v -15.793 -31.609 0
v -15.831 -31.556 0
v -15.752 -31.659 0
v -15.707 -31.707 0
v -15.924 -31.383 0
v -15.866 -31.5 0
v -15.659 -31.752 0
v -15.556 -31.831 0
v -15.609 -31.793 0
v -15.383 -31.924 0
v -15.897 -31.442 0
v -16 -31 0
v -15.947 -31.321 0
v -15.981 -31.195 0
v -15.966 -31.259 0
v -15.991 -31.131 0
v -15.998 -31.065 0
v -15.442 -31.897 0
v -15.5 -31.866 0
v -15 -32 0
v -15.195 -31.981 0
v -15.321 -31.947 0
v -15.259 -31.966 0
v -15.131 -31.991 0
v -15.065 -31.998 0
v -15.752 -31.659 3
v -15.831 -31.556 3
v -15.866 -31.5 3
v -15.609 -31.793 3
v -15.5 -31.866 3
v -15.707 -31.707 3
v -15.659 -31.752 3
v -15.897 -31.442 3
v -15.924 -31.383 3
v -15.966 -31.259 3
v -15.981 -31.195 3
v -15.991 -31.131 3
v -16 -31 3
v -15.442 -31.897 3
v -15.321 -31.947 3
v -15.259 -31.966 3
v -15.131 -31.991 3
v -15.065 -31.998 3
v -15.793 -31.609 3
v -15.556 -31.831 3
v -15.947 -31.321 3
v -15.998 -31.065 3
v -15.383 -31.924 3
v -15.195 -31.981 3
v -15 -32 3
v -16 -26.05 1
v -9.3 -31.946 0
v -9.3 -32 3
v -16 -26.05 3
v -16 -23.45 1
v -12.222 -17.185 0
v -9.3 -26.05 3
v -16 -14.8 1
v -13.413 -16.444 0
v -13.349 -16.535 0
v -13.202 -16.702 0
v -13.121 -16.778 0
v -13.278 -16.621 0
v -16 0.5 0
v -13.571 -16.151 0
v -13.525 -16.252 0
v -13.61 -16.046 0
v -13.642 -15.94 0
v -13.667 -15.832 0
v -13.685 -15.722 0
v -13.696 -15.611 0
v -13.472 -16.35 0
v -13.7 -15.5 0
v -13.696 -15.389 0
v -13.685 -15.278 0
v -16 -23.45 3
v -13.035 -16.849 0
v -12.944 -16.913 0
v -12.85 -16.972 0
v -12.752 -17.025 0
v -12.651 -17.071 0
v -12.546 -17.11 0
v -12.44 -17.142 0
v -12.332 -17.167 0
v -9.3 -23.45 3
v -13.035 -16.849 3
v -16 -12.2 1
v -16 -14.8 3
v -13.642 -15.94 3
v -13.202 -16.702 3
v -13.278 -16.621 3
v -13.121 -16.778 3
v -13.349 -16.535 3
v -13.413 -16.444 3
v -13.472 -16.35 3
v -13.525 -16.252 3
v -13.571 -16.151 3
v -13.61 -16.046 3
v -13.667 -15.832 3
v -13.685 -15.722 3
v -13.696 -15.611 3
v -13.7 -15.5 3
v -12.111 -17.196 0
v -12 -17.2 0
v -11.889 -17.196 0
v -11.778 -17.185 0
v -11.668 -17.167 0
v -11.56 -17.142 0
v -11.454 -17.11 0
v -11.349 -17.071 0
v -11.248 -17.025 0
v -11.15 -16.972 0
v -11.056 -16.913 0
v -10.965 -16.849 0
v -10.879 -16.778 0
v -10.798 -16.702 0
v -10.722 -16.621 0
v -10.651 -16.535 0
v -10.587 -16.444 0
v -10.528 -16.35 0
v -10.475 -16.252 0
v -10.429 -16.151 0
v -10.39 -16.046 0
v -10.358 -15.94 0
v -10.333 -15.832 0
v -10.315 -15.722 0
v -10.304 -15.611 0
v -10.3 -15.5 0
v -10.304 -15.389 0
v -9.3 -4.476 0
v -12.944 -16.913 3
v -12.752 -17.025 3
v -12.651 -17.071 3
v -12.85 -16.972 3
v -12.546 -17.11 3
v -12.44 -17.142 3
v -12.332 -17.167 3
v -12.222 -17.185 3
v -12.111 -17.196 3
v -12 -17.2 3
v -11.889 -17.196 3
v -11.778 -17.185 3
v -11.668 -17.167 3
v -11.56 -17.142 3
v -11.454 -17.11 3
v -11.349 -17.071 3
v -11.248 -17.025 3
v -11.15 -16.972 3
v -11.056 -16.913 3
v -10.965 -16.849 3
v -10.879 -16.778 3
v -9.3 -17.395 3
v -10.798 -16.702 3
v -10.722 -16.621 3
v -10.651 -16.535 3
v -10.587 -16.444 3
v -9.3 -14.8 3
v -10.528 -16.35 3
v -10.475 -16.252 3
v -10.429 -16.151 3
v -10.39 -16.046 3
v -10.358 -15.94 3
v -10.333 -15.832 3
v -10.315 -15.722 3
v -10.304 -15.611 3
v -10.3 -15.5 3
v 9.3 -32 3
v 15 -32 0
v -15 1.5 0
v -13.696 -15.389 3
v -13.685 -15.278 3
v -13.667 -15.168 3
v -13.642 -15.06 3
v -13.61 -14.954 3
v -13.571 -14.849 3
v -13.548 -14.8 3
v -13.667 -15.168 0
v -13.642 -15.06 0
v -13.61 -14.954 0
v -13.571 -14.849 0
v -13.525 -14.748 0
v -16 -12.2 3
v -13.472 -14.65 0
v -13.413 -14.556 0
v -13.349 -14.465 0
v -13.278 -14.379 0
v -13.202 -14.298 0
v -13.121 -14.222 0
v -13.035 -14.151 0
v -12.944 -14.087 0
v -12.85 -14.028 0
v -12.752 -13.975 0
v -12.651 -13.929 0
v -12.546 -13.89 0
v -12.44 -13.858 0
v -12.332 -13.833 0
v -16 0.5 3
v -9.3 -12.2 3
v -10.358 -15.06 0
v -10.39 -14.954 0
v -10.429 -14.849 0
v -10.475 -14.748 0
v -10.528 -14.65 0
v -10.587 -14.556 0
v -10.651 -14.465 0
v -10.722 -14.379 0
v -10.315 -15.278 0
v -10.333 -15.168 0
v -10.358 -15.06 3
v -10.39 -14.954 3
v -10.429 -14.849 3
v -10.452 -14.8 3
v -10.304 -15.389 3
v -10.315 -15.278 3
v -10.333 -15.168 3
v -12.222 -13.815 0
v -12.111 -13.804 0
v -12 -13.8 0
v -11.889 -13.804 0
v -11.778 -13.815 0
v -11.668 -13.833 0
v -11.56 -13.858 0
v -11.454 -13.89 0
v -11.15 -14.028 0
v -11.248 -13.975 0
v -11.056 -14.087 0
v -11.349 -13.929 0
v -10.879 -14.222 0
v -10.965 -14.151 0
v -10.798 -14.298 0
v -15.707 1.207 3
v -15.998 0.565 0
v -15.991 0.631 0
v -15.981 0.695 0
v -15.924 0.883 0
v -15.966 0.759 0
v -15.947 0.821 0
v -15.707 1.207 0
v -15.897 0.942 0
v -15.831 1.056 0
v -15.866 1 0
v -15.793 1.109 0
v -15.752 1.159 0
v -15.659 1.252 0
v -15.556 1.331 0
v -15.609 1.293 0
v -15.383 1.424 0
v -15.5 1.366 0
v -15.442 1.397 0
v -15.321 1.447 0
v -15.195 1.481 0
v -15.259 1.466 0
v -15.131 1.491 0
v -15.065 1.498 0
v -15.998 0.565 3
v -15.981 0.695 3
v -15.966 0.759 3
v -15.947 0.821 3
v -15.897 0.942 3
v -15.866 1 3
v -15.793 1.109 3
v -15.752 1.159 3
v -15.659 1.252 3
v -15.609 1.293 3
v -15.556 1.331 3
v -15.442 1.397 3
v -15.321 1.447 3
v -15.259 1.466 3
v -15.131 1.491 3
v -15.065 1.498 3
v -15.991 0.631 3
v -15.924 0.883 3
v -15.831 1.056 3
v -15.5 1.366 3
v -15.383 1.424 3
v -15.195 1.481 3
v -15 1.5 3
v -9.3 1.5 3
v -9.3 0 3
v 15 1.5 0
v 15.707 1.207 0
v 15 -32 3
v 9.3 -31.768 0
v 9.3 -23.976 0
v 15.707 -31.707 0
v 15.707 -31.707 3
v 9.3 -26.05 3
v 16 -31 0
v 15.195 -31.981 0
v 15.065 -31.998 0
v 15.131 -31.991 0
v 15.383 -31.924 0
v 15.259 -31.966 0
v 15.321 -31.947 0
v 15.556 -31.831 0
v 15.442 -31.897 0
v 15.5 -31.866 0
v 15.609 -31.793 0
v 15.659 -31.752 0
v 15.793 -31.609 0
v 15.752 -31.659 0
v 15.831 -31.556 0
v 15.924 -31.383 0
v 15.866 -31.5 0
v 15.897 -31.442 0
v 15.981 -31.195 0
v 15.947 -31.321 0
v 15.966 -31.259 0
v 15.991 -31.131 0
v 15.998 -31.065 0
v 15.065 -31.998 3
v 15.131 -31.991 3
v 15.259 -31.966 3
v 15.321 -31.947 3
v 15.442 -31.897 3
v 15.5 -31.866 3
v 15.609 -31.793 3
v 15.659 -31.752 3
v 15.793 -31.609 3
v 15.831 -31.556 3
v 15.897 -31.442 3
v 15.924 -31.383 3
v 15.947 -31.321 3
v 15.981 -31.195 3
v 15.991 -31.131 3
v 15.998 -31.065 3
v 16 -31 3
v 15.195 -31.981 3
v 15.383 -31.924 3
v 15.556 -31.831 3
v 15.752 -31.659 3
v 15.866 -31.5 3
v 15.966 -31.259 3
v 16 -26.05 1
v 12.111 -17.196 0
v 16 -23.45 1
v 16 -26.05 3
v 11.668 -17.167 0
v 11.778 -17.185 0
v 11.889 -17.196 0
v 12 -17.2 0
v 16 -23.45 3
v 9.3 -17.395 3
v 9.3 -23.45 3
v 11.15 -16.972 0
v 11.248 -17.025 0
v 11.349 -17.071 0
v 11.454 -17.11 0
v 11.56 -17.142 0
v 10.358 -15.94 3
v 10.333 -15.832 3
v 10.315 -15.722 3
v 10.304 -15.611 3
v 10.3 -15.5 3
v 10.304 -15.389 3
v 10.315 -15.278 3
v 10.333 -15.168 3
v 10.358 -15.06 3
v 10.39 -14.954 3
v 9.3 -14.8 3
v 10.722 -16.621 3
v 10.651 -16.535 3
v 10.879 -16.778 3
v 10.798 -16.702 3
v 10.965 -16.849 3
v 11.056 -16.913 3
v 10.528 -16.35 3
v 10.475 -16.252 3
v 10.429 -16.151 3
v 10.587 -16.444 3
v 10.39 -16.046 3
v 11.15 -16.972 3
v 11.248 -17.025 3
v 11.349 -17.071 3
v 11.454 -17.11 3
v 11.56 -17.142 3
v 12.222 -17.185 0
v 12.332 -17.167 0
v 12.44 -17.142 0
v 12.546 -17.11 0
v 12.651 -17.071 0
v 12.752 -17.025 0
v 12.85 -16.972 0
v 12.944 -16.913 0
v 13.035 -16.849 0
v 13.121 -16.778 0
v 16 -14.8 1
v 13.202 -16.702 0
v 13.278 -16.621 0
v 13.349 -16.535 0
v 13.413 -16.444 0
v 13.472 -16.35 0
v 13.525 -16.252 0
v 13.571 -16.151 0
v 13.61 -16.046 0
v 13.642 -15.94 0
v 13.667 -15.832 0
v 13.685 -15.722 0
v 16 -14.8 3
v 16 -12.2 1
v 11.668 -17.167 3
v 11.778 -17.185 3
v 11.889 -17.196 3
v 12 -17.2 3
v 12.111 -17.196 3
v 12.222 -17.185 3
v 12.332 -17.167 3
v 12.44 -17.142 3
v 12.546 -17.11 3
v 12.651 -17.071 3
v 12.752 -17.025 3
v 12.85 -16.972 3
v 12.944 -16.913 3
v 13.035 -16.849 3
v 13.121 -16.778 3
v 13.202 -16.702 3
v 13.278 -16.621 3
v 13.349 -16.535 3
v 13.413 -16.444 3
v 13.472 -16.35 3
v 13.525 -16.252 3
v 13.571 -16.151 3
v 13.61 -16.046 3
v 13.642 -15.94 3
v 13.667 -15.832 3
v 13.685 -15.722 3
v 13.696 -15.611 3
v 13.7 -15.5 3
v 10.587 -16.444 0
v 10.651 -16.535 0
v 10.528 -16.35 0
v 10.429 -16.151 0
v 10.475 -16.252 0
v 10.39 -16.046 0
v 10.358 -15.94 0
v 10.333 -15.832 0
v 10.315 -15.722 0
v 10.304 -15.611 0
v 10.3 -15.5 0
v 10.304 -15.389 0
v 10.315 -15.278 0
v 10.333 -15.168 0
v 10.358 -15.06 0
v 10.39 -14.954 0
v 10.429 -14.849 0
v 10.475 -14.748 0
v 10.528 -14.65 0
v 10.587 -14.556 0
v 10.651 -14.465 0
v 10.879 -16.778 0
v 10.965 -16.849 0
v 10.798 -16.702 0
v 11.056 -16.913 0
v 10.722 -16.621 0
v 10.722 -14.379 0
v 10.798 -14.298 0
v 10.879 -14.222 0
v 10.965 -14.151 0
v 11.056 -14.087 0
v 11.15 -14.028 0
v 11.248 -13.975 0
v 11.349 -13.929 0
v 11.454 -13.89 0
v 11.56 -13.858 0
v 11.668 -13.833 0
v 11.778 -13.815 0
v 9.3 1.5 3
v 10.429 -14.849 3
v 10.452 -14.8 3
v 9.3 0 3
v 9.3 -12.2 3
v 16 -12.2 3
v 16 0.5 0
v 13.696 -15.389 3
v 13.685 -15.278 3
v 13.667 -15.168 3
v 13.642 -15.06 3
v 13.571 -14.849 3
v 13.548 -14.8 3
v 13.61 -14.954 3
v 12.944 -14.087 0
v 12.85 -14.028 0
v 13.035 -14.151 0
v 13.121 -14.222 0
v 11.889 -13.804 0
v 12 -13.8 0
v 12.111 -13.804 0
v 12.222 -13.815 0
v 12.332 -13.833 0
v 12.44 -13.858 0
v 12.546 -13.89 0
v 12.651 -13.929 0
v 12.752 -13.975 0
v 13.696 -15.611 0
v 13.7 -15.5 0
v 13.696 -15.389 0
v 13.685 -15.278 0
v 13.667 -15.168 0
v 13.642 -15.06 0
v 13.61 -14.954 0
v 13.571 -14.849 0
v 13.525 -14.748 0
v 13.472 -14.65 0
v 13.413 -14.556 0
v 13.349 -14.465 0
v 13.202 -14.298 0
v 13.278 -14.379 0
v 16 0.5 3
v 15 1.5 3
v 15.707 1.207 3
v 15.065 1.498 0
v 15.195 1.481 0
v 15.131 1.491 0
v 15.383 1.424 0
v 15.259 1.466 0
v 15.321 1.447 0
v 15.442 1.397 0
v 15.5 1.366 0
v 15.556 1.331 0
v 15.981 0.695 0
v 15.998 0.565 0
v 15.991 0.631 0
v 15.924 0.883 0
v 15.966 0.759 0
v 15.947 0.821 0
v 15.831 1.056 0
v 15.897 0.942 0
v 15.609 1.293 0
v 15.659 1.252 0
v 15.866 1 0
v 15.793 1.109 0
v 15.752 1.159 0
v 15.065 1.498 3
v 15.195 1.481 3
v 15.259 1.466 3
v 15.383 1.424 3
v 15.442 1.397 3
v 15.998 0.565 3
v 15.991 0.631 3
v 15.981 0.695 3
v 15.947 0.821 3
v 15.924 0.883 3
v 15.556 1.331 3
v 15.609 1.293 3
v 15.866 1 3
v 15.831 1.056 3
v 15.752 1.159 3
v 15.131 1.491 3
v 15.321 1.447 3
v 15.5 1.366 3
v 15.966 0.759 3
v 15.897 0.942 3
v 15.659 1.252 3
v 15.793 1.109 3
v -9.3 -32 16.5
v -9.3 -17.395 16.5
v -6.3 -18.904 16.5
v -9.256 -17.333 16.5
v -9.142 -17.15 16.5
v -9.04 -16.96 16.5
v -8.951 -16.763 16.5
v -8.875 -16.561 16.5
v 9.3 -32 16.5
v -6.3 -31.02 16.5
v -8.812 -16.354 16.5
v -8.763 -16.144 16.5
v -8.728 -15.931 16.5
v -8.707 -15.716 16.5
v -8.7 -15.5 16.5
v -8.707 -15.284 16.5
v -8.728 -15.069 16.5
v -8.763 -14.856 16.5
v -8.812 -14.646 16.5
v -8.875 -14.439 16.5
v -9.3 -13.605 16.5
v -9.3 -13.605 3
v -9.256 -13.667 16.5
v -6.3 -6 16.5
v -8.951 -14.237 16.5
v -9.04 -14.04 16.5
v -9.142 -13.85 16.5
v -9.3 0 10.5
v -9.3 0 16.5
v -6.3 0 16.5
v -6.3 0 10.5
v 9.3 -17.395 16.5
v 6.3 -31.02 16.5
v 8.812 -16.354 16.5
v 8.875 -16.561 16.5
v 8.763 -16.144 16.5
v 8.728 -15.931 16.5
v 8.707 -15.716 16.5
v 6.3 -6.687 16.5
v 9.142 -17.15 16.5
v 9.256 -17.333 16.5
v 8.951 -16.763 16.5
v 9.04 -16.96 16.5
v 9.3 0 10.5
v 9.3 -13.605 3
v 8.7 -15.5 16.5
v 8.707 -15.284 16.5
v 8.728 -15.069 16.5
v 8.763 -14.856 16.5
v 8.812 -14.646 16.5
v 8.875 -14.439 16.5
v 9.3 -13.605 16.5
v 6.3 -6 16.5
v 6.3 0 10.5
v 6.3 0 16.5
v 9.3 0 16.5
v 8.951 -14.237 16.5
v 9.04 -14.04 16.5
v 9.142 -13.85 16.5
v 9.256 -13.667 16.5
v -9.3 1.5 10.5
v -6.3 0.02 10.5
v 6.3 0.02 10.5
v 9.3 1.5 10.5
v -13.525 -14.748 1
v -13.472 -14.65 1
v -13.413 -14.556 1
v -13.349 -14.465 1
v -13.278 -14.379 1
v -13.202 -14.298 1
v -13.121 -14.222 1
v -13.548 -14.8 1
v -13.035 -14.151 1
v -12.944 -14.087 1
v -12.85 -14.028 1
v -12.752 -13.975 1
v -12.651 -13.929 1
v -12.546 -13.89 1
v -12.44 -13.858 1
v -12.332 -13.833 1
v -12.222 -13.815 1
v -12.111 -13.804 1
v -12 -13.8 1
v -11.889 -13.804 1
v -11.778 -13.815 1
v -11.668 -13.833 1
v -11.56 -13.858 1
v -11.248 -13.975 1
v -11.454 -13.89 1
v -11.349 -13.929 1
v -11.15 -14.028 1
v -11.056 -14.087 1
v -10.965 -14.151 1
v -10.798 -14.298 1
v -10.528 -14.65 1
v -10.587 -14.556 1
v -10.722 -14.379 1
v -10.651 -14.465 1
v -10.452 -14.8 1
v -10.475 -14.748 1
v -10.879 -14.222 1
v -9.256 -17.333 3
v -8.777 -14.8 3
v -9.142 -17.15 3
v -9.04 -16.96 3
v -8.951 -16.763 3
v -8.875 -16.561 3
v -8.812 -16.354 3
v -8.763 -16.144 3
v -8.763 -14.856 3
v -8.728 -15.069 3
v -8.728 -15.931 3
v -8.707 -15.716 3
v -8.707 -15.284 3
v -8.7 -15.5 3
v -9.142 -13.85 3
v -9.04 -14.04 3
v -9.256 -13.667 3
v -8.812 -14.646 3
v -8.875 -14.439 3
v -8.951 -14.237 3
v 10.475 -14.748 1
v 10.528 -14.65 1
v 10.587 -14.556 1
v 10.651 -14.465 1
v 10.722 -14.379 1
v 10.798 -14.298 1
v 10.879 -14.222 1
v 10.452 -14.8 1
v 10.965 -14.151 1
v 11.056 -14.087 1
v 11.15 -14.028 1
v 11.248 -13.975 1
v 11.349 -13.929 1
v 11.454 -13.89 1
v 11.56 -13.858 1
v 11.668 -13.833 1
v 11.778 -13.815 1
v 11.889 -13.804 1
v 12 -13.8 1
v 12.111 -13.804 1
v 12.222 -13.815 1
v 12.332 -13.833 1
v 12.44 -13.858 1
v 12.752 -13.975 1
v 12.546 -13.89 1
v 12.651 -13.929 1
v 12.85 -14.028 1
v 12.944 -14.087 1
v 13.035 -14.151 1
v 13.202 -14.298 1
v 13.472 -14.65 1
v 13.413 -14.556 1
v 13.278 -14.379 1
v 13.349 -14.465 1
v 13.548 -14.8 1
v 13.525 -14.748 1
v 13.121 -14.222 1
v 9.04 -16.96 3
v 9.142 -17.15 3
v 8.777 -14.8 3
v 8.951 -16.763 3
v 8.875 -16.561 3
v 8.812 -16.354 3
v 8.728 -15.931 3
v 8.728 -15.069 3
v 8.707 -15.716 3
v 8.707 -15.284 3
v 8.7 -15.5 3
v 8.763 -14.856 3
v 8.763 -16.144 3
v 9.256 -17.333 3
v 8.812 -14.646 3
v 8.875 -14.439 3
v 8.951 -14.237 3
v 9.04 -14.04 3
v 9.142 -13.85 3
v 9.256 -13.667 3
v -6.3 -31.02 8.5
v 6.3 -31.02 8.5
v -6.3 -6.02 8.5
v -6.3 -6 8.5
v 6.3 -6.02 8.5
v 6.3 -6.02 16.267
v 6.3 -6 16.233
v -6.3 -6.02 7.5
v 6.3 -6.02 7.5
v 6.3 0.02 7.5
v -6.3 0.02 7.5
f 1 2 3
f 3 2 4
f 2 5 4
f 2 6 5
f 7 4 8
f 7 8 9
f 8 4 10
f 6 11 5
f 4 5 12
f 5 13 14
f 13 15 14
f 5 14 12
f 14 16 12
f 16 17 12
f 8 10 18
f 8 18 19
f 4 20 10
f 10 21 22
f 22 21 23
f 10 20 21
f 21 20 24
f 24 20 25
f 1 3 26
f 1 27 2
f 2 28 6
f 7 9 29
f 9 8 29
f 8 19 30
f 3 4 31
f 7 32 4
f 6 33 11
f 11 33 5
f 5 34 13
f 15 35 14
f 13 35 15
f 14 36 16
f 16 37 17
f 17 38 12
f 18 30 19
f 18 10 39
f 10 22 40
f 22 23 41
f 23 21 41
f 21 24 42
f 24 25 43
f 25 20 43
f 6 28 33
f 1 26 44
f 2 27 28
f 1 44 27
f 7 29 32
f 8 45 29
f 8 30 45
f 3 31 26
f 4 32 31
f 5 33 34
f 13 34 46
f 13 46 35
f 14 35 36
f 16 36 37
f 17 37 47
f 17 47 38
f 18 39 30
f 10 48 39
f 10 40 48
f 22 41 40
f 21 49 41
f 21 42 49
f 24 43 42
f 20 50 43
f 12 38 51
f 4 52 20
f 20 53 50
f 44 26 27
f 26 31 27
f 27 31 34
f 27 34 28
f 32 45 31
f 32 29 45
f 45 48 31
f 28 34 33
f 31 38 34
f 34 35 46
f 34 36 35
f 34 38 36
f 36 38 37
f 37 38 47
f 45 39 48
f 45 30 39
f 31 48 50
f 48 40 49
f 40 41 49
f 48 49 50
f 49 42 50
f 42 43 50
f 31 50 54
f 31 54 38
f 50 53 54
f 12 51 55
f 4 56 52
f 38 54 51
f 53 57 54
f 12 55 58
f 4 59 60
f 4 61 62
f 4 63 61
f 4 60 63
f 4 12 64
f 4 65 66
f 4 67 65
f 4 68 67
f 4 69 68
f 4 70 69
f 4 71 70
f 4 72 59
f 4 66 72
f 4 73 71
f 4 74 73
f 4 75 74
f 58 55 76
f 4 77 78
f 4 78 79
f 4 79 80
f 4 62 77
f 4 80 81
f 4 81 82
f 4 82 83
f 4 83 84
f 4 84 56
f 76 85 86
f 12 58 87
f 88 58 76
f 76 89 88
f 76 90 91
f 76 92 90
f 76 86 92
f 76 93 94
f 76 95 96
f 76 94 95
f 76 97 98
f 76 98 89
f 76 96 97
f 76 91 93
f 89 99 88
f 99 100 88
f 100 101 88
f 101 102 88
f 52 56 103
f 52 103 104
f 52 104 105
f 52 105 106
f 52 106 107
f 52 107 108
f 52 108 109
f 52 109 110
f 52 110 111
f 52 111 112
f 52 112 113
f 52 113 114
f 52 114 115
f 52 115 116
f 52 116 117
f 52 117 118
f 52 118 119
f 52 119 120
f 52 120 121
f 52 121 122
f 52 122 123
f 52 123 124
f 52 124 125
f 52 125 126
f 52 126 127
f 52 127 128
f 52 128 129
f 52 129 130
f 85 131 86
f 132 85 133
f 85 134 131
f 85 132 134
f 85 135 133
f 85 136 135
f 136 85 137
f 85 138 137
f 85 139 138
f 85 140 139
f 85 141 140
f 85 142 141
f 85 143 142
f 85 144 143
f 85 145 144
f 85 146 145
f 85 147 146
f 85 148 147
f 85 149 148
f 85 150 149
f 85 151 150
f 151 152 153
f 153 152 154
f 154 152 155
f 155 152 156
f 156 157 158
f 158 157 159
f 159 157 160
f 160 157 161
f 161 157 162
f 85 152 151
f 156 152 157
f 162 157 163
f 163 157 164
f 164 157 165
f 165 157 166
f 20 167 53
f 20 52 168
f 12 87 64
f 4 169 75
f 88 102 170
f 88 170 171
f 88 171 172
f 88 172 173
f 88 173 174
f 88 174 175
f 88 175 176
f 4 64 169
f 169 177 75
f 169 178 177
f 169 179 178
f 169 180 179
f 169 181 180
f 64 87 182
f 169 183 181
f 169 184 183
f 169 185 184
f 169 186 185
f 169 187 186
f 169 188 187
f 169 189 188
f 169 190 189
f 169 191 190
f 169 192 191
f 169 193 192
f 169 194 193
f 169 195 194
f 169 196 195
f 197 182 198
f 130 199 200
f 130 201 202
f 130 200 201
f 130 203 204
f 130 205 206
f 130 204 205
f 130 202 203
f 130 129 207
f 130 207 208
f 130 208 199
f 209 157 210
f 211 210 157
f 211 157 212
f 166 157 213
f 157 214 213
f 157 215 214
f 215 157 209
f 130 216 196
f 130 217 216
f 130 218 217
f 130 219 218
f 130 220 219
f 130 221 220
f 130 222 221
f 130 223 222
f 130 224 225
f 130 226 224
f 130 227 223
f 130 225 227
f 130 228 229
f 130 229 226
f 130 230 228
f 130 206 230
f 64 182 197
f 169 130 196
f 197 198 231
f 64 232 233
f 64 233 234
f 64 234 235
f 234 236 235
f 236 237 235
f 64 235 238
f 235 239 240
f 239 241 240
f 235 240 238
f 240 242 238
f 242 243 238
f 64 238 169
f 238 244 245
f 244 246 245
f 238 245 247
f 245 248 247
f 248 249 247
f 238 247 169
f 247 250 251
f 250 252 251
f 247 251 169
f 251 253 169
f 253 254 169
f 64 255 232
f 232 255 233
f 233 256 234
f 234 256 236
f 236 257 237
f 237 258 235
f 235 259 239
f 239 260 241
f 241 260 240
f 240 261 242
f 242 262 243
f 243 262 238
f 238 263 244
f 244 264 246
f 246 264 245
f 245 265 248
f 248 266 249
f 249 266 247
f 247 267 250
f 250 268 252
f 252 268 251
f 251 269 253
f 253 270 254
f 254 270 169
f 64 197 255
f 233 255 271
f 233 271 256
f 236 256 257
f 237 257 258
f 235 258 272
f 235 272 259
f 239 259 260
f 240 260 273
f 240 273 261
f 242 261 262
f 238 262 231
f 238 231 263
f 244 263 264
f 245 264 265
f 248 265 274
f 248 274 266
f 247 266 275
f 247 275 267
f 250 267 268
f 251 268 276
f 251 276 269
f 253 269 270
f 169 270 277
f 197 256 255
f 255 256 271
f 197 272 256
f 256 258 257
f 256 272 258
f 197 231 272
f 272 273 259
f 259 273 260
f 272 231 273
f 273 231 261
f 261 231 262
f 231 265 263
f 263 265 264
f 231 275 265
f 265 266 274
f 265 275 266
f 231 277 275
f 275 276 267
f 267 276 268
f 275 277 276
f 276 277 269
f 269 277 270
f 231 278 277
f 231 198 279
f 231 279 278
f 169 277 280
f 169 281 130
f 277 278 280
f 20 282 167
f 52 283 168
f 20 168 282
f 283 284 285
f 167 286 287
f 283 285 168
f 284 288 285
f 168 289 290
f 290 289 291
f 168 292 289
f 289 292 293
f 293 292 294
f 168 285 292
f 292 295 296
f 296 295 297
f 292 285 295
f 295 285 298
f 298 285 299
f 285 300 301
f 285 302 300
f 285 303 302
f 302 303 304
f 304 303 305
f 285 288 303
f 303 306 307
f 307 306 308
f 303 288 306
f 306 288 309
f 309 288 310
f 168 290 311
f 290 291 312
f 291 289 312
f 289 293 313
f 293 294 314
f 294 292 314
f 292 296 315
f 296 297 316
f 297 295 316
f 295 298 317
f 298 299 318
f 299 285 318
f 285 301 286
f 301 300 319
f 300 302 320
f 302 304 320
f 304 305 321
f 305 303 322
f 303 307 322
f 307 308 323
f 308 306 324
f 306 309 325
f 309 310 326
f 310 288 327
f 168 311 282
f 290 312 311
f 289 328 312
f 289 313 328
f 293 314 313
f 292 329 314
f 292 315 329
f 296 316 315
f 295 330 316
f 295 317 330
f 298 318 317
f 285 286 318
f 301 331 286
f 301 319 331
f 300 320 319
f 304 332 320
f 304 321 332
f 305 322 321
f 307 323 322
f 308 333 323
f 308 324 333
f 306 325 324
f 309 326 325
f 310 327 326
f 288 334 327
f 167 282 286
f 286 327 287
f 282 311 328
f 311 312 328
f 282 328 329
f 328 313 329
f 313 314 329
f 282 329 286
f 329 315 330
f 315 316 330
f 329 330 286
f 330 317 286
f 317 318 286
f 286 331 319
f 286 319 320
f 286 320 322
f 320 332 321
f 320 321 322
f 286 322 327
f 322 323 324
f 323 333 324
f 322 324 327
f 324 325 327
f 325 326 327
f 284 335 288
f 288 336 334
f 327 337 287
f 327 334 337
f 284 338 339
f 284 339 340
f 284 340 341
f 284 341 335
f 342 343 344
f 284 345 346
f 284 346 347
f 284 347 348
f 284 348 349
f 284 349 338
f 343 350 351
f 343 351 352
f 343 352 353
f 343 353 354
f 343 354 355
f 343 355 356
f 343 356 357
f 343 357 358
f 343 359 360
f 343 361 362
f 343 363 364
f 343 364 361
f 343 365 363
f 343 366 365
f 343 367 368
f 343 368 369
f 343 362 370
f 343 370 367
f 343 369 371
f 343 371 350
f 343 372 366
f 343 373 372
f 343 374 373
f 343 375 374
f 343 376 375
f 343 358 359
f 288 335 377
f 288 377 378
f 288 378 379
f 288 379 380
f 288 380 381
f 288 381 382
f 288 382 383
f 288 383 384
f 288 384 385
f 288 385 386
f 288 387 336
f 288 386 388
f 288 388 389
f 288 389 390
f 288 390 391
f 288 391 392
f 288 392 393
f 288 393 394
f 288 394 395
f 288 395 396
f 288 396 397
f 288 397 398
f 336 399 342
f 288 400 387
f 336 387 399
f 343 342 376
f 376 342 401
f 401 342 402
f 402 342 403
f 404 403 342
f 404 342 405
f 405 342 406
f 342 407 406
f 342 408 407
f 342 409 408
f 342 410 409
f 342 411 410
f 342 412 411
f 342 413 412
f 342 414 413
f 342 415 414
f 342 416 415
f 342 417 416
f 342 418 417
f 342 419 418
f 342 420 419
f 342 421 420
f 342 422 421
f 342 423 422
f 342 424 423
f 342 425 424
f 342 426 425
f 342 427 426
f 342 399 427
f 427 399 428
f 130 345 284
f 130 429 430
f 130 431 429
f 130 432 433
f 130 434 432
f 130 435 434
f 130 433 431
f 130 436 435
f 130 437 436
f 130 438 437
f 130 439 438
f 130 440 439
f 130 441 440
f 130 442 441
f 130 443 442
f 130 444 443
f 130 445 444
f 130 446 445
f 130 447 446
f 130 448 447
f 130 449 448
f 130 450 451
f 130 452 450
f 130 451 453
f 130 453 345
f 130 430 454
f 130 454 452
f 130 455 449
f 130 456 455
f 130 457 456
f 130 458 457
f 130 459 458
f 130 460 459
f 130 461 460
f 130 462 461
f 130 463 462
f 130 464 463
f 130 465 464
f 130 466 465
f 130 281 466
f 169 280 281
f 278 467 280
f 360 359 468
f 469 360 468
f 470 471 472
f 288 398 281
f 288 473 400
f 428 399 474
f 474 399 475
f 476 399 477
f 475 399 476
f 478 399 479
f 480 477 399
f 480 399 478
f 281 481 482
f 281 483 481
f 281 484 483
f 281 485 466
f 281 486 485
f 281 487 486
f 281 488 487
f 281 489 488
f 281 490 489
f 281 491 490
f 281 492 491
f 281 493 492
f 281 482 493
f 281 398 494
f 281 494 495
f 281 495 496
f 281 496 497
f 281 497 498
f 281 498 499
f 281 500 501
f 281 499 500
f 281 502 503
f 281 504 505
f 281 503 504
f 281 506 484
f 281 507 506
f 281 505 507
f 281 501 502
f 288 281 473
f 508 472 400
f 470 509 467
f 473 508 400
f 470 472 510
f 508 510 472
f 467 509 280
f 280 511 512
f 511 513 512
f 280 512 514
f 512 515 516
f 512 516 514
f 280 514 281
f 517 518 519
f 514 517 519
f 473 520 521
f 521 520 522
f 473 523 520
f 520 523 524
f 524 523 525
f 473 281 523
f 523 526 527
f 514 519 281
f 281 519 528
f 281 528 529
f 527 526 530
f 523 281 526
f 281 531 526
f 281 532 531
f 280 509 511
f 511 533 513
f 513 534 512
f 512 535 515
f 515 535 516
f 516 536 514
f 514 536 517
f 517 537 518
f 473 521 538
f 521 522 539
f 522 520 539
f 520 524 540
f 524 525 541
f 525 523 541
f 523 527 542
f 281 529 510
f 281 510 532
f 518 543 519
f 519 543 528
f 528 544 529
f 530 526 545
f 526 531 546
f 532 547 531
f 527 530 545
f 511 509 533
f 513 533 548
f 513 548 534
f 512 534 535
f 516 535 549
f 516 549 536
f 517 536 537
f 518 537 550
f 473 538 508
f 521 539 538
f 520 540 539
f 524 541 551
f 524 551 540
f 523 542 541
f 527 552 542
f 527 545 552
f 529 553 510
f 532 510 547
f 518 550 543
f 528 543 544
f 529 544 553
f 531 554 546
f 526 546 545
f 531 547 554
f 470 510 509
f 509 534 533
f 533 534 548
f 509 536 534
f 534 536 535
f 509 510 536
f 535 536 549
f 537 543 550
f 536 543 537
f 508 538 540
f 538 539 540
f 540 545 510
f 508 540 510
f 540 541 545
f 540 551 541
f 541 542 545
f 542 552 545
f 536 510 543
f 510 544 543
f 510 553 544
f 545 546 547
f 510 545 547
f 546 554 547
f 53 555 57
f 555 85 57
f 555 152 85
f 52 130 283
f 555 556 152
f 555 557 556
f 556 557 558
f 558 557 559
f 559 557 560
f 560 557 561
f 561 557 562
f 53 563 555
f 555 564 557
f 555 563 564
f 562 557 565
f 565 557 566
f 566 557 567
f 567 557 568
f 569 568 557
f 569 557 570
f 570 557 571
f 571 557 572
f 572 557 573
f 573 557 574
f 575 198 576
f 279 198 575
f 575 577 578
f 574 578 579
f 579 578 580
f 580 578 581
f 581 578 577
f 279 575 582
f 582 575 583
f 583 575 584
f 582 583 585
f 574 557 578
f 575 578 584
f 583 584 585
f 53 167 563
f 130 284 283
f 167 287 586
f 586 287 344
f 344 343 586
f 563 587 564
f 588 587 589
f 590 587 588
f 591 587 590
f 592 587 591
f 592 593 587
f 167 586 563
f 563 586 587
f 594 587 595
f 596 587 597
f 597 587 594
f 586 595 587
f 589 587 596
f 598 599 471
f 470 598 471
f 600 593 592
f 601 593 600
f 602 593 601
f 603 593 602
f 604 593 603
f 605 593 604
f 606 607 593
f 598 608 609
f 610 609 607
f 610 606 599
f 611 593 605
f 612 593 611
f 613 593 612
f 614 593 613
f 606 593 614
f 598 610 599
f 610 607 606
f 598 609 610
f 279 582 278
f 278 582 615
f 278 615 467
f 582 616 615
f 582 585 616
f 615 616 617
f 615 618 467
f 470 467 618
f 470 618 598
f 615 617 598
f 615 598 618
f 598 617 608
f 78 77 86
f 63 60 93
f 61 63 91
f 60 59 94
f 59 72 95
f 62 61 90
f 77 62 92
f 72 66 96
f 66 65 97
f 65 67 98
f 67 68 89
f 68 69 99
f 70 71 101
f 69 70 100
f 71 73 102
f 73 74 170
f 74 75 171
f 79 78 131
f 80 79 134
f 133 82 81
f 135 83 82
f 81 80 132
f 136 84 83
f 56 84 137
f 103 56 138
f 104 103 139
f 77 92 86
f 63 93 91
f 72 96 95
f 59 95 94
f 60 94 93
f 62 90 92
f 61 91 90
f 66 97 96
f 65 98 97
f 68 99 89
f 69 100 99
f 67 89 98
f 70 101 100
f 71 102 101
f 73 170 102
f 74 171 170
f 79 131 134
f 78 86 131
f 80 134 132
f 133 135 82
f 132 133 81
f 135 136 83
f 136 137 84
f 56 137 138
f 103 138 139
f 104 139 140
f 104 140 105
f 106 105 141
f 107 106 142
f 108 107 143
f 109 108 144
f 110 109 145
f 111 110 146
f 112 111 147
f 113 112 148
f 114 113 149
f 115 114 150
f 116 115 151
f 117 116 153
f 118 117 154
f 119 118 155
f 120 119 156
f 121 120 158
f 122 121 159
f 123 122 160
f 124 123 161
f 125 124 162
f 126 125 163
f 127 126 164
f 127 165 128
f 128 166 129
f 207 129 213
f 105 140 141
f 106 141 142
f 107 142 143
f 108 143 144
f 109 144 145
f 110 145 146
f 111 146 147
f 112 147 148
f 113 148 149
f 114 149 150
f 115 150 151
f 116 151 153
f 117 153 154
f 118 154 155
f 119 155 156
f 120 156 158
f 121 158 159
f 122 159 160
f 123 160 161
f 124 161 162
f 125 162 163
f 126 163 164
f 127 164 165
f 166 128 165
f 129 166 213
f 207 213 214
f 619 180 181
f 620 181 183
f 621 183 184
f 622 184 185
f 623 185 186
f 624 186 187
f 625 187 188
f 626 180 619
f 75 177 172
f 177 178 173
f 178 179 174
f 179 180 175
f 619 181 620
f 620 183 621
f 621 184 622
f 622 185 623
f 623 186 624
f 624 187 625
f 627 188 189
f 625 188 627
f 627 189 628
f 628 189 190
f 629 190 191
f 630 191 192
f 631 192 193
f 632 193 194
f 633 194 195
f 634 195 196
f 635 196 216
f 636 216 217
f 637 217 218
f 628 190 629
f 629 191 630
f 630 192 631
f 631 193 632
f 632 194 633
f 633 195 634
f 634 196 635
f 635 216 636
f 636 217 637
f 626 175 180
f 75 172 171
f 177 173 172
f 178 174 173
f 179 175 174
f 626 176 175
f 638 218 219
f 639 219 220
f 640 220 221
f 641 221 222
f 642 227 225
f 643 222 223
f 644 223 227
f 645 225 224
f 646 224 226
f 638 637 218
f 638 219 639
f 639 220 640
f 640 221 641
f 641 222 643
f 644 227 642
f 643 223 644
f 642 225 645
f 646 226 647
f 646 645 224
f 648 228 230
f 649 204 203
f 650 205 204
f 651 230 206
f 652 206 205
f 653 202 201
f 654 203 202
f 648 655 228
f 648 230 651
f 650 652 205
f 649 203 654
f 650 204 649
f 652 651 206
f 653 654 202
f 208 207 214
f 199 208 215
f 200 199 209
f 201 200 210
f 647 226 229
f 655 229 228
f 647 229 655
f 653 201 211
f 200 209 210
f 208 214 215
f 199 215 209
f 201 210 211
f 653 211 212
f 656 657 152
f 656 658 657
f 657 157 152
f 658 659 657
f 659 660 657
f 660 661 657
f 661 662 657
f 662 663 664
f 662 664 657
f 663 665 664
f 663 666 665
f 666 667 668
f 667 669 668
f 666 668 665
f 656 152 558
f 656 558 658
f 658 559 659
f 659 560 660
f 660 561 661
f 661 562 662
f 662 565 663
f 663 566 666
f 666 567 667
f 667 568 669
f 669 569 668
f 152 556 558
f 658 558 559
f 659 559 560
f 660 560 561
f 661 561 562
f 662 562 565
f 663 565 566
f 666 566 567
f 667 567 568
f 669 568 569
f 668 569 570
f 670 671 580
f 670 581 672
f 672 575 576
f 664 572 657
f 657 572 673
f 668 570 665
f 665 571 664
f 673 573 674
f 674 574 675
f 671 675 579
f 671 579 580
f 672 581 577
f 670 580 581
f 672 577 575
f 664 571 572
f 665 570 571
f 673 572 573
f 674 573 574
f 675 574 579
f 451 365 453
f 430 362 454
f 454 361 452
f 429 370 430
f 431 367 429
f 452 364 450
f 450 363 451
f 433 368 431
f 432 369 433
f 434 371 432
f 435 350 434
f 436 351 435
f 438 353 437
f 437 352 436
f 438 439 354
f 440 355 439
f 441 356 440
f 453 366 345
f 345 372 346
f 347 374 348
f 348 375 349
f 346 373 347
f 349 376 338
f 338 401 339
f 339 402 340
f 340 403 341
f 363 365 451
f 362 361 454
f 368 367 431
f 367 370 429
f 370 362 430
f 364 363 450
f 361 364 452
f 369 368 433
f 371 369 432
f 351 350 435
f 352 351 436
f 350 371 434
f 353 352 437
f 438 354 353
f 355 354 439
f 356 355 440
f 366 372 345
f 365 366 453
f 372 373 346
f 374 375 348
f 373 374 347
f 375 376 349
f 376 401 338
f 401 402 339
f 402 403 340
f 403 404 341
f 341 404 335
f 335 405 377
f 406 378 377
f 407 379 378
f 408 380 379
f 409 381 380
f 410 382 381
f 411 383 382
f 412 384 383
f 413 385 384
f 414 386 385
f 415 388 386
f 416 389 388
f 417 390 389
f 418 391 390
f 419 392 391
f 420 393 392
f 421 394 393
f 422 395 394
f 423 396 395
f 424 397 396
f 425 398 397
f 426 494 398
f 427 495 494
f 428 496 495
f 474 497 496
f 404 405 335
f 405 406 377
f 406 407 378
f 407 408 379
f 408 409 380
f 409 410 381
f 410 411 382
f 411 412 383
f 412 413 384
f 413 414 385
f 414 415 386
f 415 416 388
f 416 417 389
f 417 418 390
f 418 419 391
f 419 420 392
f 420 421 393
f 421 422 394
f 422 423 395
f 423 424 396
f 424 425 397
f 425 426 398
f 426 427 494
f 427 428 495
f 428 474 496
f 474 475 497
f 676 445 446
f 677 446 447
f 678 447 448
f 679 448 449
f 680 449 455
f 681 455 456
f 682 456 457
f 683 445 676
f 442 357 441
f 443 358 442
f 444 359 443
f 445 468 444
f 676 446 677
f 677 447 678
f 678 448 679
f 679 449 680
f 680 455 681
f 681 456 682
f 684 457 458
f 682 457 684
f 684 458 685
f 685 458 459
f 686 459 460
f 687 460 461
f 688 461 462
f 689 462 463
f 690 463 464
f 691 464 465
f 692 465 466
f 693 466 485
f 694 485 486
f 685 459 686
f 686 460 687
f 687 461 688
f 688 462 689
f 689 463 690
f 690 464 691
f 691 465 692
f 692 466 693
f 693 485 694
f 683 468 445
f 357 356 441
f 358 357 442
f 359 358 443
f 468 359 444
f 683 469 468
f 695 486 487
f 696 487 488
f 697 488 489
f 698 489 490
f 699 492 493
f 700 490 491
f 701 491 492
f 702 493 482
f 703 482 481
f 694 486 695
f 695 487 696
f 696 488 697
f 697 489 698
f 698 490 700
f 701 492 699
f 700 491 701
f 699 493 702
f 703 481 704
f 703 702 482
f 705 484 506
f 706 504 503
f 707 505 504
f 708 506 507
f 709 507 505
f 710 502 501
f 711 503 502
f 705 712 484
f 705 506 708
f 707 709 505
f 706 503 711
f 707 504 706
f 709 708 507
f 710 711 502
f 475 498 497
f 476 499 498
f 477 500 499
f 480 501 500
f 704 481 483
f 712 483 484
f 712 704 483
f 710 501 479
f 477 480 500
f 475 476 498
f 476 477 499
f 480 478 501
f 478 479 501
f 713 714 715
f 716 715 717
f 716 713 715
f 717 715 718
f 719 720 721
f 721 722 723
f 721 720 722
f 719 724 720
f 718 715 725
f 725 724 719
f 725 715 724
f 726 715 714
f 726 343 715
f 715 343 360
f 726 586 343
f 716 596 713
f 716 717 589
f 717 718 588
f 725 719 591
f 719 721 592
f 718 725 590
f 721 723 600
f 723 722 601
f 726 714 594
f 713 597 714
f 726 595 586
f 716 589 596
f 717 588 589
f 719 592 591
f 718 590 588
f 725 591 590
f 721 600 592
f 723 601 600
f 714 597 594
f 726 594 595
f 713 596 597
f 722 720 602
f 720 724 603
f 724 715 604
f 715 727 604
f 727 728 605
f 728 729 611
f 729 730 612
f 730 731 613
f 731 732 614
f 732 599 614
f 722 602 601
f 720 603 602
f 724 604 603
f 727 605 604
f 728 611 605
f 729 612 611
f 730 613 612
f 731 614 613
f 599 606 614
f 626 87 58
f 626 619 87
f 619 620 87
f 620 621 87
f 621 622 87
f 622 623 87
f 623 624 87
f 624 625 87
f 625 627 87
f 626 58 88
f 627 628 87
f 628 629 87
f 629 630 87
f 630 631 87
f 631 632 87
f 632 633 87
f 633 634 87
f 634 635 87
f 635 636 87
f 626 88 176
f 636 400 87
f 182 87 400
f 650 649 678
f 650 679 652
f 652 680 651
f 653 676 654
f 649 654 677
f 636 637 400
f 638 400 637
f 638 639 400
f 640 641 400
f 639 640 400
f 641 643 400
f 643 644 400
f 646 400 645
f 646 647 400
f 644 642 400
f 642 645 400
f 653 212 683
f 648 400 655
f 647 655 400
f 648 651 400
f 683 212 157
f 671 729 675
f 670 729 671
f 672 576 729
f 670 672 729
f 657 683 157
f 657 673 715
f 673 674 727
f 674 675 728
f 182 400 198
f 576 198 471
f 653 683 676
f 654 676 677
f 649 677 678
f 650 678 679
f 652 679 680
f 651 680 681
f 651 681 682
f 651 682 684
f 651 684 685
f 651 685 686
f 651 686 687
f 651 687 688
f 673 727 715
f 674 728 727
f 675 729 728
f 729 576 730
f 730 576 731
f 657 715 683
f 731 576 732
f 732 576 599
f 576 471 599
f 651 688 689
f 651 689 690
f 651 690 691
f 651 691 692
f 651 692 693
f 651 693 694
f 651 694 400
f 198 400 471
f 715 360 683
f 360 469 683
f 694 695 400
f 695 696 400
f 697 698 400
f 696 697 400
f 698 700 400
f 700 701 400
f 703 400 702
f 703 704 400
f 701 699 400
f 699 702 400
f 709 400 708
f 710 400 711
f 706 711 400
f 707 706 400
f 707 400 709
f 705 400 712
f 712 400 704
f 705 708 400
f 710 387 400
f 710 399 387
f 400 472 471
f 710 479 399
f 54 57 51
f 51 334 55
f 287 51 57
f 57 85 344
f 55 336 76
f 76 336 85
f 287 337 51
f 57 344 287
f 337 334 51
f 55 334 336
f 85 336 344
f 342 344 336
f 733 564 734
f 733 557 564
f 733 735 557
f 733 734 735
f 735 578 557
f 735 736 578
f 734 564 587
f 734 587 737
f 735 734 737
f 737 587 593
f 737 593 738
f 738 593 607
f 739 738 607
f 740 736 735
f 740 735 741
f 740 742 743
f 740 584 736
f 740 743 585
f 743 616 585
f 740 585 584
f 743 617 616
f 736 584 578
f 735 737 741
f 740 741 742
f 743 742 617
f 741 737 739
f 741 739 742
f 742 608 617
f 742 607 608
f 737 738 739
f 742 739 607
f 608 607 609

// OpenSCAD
// Units: mm. Generic prototype; read ../audit/CAD_AUDIT.md.
$fn=96;
use <../cute_rover_complete.scad>;
n20_motor_mount();
